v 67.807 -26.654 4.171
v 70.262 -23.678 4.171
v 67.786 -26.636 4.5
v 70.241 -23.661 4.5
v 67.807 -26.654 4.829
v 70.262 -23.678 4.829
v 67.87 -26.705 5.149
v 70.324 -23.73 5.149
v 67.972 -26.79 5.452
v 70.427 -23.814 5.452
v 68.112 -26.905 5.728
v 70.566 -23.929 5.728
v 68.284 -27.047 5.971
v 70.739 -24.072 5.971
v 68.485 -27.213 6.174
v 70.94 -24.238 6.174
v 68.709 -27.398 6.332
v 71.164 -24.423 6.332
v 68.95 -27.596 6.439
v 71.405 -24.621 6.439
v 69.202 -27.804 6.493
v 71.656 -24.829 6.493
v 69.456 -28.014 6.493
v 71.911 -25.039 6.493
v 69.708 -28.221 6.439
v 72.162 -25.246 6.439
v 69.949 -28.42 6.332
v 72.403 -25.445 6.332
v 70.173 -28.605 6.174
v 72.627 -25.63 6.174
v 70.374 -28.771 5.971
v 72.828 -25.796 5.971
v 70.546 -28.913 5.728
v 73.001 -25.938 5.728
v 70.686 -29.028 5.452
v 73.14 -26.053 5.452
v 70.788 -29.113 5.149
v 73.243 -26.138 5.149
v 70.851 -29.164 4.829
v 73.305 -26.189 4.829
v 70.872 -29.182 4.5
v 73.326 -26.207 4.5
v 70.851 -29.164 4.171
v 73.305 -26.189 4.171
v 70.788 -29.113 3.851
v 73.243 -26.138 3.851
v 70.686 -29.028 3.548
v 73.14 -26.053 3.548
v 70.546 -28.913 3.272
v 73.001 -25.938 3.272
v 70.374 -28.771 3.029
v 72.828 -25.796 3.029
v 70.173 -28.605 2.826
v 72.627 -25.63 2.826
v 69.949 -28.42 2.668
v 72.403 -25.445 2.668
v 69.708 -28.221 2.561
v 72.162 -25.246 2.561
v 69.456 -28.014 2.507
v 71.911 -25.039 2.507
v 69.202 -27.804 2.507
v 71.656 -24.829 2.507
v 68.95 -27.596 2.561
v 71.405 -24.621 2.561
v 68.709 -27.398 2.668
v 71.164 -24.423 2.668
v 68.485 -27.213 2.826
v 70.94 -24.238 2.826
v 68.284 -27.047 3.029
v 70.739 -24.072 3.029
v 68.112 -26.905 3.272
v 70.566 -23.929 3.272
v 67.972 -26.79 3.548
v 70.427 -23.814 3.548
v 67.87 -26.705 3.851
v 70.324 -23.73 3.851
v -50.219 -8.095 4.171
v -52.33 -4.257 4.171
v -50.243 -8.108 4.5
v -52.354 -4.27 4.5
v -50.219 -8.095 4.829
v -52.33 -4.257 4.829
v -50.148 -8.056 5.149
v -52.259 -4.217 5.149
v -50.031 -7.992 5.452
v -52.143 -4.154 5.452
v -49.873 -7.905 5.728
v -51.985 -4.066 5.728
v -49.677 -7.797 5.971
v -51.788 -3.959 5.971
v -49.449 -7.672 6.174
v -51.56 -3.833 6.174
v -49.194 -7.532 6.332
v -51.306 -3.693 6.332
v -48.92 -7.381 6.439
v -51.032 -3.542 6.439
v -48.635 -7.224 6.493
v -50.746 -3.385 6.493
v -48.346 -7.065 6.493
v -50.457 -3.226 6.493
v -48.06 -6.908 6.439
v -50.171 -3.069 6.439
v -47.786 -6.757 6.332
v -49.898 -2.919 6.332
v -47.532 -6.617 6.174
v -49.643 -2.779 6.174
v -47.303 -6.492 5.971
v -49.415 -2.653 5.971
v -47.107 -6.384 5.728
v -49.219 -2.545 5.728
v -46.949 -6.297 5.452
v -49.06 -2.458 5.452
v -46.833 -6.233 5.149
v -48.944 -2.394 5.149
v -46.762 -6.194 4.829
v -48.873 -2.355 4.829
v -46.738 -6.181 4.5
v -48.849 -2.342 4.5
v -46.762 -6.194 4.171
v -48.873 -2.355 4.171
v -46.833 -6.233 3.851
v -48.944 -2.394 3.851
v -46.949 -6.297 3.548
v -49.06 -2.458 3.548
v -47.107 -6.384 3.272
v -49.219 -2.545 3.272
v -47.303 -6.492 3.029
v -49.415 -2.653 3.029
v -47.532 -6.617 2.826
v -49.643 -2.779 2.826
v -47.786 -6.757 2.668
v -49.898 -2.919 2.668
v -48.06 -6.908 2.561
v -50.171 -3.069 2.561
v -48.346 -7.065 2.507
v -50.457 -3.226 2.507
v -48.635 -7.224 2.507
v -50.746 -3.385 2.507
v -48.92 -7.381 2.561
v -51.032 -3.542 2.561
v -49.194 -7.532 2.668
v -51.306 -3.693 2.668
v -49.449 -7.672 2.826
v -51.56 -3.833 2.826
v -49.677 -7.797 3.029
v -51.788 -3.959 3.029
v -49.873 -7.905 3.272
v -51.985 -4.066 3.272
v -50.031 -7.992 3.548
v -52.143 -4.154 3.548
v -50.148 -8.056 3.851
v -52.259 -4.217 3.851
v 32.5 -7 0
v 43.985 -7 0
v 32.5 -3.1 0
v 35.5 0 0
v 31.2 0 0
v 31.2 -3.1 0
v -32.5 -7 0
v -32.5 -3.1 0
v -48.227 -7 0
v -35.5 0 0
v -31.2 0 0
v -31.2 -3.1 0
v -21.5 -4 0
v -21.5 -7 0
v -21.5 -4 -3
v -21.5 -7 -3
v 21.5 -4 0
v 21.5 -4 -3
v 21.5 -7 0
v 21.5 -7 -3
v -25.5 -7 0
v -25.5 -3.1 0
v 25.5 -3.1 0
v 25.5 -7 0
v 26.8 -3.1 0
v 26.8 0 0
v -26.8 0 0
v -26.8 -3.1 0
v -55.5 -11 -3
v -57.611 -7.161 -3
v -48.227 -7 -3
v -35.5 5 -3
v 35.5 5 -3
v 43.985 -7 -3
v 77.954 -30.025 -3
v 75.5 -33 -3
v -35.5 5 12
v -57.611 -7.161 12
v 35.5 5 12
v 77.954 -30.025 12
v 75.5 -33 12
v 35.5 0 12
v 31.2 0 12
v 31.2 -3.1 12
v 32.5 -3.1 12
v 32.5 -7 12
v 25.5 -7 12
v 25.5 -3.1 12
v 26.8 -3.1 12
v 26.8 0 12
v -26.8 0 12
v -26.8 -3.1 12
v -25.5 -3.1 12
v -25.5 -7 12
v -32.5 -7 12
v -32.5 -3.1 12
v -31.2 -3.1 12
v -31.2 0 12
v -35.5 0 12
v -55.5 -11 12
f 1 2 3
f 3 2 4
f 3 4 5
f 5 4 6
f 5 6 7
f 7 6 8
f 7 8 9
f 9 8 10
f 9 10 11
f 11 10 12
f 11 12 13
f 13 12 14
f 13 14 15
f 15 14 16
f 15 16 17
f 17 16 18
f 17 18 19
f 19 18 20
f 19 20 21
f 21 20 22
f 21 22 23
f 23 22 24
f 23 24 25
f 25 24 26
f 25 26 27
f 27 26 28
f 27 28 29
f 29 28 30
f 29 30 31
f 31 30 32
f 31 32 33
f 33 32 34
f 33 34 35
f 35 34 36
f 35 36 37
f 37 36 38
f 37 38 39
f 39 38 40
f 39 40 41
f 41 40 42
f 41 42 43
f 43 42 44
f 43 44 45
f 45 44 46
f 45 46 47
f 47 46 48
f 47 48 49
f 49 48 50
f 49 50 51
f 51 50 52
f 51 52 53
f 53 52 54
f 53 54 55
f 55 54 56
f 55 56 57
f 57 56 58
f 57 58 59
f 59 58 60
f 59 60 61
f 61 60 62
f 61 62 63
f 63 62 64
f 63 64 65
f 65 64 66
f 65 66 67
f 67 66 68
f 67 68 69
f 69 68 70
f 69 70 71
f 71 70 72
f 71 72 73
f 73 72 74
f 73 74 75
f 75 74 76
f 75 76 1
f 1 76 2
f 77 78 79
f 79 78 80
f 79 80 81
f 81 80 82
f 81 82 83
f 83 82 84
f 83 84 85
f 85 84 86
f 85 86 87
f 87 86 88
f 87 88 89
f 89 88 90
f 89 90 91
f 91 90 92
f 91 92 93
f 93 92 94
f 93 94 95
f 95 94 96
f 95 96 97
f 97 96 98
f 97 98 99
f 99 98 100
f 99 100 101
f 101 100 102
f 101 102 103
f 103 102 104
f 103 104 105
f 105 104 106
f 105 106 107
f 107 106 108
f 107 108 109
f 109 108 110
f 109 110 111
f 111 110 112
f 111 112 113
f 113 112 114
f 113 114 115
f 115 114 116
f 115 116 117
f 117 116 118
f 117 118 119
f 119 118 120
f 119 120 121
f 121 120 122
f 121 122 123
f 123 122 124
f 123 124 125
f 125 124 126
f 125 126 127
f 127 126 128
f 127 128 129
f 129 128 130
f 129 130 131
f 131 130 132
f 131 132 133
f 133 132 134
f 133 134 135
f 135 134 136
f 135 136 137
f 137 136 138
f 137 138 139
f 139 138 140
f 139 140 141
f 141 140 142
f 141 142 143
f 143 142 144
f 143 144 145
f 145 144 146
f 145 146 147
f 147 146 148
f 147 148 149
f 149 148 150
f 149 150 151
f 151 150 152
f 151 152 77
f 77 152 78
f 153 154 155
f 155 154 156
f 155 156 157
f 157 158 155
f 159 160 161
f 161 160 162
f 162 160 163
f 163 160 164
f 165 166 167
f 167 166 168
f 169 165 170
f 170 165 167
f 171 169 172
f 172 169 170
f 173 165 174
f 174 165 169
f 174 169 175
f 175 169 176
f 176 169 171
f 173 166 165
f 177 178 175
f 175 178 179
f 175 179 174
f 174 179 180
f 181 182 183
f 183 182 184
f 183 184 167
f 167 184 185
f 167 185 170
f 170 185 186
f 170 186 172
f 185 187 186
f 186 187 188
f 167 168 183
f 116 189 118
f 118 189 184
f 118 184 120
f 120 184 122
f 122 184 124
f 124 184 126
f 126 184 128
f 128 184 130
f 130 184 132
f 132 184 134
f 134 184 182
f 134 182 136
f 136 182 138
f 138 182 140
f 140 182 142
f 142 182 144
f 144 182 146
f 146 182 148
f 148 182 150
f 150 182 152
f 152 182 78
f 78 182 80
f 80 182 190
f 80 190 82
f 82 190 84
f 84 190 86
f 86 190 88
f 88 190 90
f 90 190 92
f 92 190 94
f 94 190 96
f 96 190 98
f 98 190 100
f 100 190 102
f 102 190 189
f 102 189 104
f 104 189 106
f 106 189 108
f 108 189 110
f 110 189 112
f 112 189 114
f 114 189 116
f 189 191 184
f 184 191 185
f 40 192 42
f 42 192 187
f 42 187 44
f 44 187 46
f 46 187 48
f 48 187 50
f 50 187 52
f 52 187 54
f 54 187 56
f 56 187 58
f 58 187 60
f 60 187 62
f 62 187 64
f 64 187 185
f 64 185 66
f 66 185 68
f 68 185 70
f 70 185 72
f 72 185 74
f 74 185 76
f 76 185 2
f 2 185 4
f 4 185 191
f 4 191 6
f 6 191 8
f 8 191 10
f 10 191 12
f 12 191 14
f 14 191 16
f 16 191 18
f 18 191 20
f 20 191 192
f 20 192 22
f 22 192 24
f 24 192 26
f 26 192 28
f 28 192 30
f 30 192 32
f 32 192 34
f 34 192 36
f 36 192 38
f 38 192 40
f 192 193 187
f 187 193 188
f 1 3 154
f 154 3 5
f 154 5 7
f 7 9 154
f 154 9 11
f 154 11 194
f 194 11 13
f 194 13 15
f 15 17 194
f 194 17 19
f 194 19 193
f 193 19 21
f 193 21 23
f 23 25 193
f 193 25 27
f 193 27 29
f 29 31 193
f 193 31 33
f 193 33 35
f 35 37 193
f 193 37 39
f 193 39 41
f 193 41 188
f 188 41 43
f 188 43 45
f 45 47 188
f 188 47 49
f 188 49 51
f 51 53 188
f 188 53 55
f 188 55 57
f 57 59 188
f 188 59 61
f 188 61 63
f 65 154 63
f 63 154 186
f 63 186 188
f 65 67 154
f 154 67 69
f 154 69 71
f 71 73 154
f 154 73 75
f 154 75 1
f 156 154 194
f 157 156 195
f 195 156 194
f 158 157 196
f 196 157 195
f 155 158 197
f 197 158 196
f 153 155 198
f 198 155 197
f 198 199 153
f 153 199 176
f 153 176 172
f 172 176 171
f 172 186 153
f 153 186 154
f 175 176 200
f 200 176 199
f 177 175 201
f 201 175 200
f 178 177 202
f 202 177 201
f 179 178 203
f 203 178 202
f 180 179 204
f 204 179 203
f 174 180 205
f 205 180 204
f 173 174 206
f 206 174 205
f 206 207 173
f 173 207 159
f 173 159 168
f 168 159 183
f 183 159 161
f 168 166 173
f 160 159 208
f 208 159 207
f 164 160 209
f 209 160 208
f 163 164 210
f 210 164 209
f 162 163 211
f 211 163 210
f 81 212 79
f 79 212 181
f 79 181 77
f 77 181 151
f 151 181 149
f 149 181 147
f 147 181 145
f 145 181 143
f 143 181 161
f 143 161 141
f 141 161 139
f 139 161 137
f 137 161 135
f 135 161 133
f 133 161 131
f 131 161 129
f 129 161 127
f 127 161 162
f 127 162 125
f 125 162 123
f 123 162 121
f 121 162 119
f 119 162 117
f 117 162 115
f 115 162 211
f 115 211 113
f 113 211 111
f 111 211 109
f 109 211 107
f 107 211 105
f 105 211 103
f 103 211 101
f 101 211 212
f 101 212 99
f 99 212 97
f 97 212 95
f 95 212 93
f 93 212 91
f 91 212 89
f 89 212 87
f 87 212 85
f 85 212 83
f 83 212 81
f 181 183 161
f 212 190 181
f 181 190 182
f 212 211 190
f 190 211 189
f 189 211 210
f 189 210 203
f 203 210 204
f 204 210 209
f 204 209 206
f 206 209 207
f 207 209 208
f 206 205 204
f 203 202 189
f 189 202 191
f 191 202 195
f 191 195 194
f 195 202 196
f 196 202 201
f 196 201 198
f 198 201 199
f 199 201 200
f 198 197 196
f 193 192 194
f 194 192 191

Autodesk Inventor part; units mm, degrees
ref_plane "YZ Plane" through (0, 0, 0) normal (1, 0, 0) x (0, 1, 0)
ref_plane "XZ Plane" through (0, 0, 0) normal (0, 1, 0) x (-1, 0, 0)
ref_plane "XY Plane" through (0, 0, 0) normal (0, 0, 1) x (1, 0, 0)
sketch "Sketch2" plane through (0, 0, 0) normal (0, 0, 1) x (1, 0, 0)
  line L0 (-32.5, -3.1) -> (-25.5, -3.1)
  line L1 (-25.5, -3.1) -> (-25.5, -7)
  line L2 (-25.5, -7) -> (-32.5, -7)
  line L3 (-32.5, -7) -> (-32.5, -3.1)
  line L4 (-31.2, 0) -> (-26.8, 0)
  line L5 (-26.8, 0) -> (-26.8, -3.1)
  line L6 (-26.8, -3.1) -> (-31.2, -3.1)
  line L7 (-31.2, -3.1) -> (-31.2, 0)
  line L8 (-35.5, 0) -> (0, 0)
  line L9 (0, 5) -> (-35.5, 5)
  line L10 (-35.5, 5) -> (-35.5, 0)
  line L11 (-29, 6.5254) -> (-29, -10.3092) construction
  line L12 (0, -40.9051) -> (0, 14.4305) construction
  line L13 (32.5, -3.1) -> (25.5, -3.1)
  line L14 (25.5, -3.1) -> (25.5, -7)
  line L15 (25.5, -7) -> (32.5, -7)
  line L16 (32.5, -7) -> (32.5, -3.1)
  line L17 (31.2, 0) -> (26.8, 0)
  line L18 (26.8, 0) -> (26.8, -3.1)
  line L19 (26.8, -3.1) -> (31.2, -3.1)
  line L20 (31.2, -3.1) -> (31.2, 0)
  line L21 (35.5, 0) -> (0, 0)
  line L22 (0, 5) -> (35.5, 5)
  line L23 (35.5, 5) -> (35.5, 0)
  line L24 (29, 6.5254) -> (29, -10.3092) construction
  line L25 (-84.7245, 0) -> (105.0676, 0) construction
  line L26 (35.5, 5) -> (77.9544, -30.0249)
  line L27 (77.9544, -30.0249) -> (75.5, -33)
  line L28 (75.5, -33) -> (35.5, 0)
  line L29 (-35.5, 5) -> (35.5, 5)
  line L30 (35.5, 5) -> (35.5, -7)
  line L31 (35.5, -7) -> (-35.5, -7)
  line L32 (-35.5, -7) -> (-35.5, 5)
  line L33 (-35.5, 5) -> (-57.6113, -7.1612)
  line L34 (-57.6113, -7.1612) -> (-55.5, -11)
  line L35 (-55.5, -11) -> (-35.5, 0)
  line L36 (-21.5, -7) -> (-21.5, -4)
  line L37 (-21.5, -4) -> (0, -4)
  line L38 (21.5, -7) -> (21.5, -4)
  line L39 (21.5, -4) -> (0, -4)
  line L40 (-35.5, -7) -> (-48.2273, -7)
  line L41 (35.5, -7) -> (43.9848, -7)
  point P0 (-13.25, 5)
  point P1 (-18.25, 5)
  point P2 (29, -7)
  point P3 (32.5, -7)
  point P4 (-32.5, -7)
  point P5 (21.5, -7)
  dimension "d1" = 4.4
  dimension "d2" = 7
  dimension "d3" = 3.9
  dimension "d4" = 5
  dimension "d5" = 58
  dimension "d6" = 7
  dimension "d7" = 13
  dimension "d28" = 38
  dimension "d29" = 40
  dimension "d30" = 20
  dimension "d31" = 16
  dimension "d37" = 4
  dimension "d38" = 3
extrude "Extrusion1" add sketch "Sketch2" along normal blind 12 contours L0 L1 L2 L3 | L7 L4 L5 L0 | L8 L10 L9 L22 L23 L21 L17 L4 | L35 L34 L33 L10 | L17 L20 L13 L18 | L14 L13 L16 L15 | L26 L27 L28 L23
extrude "Extrusion3" add sketch "Sketch2" against normal blind 3 contours L3 L31 L32 L8 L7 L0 | L0 L1 L2 L3 | L7 L4 L5 L0 | L5 L8 L21 L18 L13 L14 L31 L38 L39 L37 L36 L1 L0 | L8 L10 L9 L22 L23 L21 L17 L4 | L40 L35 L32 | L35 L34 L33 L10 | L17 L20 L13 L18 | L14 L13 L16 L15 | L21 L30 L31 L16 L13 L20 | L26 L27 L28 L23 | L28 L41 L30
sketch "Sketch3" plane through (-57.6113, -7.1612, 12) normal (-0.4819, 0.8762, 0) x (0.8762, 0.4819, 0)
  circle A0 centre (8, 7.5) radius 2
  line L0 (0, 0) -> (0, 15) projected
  line L1 (25.235, 0) -> (0, 0) projected
  point P0 (53.9311, 12)
  dimension "d39" = 4
  dimension "d40" = 8
  dimension "d41" = 7.5
extrude "Extrusion4" cut sketch "Sketch3" against normal blind 10
sketch "Sketch4" plane through (35.5, 5, 12) normal (0.6364, 0.7714, 0) x (0.7714, -0.6364, 0)
  circle A0 centre (47.0375, 7.5) radius 2
  line L0 (55.0375, 15) -> (55.0375, 0) projected
  line L1 (0, 15) -> (55.0375, 15) projected
  point P0 (-24.2018, 12)
  dimension "d44" = 4
  dimension "d45" = 8
  dimension "d46" = 7.5
extrude "Extrusion5" cut sketch "Sketch4" against normal blind 10
properties part number "UnitreeGO2_railmount"
